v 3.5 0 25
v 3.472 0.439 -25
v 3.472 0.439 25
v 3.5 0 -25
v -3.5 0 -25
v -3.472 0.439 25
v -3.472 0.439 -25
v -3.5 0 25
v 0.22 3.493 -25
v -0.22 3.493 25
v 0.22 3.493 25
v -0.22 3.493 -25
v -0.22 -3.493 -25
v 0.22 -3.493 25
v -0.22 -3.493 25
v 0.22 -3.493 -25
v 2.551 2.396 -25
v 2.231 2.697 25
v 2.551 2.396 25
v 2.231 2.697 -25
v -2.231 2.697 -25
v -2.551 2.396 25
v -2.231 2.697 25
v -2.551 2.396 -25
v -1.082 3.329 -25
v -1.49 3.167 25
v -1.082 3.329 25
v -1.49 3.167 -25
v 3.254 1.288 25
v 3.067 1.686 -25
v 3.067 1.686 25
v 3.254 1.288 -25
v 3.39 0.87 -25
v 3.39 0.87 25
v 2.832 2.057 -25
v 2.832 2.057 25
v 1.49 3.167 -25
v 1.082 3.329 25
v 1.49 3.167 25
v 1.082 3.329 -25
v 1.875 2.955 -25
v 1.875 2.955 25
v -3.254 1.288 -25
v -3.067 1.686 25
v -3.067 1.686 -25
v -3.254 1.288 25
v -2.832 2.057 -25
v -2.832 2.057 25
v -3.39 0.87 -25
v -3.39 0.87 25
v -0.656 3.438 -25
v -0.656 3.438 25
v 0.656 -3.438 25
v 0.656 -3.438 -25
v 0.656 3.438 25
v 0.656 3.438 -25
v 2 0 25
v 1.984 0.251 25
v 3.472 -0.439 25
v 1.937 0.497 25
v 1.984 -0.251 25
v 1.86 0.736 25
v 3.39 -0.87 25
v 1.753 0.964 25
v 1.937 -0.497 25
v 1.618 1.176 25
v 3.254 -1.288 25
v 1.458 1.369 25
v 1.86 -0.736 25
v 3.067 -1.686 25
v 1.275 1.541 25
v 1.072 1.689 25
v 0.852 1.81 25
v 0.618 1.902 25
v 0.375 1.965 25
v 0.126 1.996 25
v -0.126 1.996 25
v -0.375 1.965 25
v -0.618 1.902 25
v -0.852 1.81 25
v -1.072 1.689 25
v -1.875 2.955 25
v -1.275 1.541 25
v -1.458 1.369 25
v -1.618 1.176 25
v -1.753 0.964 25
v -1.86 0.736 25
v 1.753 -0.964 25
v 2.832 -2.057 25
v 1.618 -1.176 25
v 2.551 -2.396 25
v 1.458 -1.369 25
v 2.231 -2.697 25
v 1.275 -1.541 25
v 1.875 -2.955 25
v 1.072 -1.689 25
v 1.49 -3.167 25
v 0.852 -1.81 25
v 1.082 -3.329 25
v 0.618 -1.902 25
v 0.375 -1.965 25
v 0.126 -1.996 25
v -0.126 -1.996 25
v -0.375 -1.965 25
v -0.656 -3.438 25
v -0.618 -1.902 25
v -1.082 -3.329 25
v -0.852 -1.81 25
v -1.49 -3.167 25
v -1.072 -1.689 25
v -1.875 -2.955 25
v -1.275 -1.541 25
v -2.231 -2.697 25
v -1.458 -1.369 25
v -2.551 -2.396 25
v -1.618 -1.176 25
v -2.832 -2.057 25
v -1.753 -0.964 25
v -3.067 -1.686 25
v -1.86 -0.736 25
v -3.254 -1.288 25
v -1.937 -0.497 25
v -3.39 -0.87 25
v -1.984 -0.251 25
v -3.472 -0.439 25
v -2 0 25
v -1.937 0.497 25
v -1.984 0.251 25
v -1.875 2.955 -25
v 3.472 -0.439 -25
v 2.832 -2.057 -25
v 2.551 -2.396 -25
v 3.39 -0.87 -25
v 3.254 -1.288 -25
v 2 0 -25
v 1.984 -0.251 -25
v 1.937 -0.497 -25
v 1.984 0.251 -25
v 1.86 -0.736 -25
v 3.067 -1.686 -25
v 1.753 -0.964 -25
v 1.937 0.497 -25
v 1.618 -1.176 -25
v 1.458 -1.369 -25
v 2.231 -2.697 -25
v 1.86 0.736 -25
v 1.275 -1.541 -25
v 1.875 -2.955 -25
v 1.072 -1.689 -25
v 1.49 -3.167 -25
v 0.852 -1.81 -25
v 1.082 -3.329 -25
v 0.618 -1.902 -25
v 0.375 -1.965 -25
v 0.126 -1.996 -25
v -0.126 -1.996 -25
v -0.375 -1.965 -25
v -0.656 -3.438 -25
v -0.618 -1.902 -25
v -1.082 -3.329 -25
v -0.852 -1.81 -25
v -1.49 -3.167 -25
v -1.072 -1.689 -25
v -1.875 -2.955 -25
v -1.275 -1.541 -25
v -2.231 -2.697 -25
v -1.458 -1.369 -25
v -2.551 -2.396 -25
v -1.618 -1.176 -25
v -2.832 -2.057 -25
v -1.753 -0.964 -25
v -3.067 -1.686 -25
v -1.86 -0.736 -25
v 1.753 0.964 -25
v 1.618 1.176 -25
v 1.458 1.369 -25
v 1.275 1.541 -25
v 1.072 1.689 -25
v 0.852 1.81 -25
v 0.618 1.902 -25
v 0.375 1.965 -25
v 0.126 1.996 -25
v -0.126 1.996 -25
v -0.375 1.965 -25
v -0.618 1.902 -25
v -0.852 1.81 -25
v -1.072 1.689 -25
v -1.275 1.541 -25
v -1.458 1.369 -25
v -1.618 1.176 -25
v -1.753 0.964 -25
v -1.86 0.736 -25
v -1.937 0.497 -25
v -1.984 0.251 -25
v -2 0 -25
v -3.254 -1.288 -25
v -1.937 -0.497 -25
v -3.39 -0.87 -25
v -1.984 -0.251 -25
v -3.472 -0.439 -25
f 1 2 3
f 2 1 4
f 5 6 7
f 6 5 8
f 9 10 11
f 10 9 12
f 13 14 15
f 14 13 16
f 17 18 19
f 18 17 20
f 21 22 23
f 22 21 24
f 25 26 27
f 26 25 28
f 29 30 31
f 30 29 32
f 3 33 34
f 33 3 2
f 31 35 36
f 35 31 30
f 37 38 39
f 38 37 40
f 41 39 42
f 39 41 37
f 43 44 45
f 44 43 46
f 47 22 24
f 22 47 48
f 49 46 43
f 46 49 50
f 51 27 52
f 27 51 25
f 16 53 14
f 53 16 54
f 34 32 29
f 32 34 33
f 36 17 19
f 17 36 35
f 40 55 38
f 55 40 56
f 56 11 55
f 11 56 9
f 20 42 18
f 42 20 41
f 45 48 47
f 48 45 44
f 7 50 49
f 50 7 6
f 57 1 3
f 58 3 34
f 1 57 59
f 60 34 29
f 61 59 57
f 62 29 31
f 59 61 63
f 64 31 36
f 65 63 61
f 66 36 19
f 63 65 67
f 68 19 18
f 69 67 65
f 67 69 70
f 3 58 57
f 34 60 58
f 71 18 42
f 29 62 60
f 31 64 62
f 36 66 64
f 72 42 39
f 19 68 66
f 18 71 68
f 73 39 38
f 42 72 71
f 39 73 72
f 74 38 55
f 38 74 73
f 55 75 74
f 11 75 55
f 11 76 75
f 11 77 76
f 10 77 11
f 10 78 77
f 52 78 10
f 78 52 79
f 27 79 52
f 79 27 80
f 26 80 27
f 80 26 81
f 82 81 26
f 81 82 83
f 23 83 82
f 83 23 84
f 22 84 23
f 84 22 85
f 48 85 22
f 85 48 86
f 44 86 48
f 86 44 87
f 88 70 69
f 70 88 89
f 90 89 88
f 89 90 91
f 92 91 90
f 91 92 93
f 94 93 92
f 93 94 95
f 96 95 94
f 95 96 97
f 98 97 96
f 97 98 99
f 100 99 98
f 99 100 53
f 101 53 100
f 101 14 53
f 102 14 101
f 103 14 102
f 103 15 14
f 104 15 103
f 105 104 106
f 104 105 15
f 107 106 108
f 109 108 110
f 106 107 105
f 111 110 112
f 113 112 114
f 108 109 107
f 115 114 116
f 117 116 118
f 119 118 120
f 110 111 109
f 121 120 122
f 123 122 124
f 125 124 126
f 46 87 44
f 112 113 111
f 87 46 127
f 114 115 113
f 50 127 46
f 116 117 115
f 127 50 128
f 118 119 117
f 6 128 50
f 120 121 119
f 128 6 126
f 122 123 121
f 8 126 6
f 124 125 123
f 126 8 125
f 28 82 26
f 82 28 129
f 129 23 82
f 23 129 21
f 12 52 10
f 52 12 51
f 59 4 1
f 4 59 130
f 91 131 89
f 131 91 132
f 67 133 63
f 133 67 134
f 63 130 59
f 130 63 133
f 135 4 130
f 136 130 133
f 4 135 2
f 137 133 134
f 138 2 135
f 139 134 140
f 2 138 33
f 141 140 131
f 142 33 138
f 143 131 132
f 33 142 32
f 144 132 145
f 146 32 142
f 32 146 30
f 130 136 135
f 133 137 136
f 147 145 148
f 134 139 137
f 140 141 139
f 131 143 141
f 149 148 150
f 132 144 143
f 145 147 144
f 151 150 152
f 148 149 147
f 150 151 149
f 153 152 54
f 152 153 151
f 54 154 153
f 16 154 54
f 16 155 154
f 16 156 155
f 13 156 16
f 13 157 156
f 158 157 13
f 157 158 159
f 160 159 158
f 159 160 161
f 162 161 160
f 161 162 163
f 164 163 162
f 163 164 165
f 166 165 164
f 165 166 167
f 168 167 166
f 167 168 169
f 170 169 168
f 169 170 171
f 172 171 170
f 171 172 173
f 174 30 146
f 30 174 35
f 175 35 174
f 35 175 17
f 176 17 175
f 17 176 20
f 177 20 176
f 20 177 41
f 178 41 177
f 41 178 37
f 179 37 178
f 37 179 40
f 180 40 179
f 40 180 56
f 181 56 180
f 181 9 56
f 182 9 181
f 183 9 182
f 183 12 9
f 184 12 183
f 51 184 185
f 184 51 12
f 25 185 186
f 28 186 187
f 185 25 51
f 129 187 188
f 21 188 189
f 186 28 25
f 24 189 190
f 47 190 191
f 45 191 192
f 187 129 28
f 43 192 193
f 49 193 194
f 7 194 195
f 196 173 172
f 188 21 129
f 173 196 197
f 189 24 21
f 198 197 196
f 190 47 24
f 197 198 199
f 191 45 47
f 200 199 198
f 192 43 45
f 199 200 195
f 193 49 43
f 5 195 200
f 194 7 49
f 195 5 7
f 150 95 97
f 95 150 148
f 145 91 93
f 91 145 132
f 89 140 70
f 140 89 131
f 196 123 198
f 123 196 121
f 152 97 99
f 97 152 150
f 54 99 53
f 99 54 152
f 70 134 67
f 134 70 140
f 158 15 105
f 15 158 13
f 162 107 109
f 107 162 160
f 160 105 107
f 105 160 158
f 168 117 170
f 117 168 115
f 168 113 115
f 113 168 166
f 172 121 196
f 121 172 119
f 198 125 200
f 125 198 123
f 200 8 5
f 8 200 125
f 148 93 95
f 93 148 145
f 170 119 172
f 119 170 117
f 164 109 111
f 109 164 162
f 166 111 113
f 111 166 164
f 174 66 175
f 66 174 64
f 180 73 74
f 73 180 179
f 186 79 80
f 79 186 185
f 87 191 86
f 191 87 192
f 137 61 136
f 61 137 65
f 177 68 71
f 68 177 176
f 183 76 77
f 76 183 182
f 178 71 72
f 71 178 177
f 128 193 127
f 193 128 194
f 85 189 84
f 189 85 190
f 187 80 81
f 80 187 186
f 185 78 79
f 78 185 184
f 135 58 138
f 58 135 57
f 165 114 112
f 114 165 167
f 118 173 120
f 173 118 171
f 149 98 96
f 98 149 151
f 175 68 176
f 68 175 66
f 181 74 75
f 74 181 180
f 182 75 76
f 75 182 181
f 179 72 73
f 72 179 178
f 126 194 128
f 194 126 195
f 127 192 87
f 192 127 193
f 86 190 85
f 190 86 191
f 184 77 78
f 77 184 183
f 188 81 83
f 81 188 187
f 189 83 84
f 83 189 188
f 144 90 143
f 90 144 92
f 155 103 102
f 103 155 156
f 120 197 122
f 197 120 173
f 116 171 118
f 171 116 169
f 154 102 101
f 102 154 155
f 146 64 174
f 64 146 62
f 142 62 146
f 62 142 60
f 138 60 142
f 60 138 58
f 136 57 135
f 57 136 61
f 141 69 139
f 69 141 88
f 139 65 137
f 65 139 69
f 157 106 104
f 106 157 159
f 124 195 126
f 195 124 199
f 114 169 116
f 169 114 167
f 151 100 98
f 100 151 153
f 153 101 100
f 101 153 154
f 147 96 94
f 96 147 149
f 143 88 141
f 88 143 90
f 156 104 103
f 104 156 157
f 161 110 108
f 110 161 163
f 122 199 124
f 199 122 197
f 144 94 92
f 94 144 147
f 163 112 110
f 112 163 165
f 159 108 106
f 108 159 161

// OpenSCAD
$fn = 50;


difference() {
	union() {
		translate(v = [0, 0, -25.0000000000]) {
			cylinder(h = 50, r = 3.5000000000);
		}
	}
	union() {
		translate(v = [0, 0, -100.0000000000]) {
			cylinder(h = 200, r = 2);
		}
	}
}
